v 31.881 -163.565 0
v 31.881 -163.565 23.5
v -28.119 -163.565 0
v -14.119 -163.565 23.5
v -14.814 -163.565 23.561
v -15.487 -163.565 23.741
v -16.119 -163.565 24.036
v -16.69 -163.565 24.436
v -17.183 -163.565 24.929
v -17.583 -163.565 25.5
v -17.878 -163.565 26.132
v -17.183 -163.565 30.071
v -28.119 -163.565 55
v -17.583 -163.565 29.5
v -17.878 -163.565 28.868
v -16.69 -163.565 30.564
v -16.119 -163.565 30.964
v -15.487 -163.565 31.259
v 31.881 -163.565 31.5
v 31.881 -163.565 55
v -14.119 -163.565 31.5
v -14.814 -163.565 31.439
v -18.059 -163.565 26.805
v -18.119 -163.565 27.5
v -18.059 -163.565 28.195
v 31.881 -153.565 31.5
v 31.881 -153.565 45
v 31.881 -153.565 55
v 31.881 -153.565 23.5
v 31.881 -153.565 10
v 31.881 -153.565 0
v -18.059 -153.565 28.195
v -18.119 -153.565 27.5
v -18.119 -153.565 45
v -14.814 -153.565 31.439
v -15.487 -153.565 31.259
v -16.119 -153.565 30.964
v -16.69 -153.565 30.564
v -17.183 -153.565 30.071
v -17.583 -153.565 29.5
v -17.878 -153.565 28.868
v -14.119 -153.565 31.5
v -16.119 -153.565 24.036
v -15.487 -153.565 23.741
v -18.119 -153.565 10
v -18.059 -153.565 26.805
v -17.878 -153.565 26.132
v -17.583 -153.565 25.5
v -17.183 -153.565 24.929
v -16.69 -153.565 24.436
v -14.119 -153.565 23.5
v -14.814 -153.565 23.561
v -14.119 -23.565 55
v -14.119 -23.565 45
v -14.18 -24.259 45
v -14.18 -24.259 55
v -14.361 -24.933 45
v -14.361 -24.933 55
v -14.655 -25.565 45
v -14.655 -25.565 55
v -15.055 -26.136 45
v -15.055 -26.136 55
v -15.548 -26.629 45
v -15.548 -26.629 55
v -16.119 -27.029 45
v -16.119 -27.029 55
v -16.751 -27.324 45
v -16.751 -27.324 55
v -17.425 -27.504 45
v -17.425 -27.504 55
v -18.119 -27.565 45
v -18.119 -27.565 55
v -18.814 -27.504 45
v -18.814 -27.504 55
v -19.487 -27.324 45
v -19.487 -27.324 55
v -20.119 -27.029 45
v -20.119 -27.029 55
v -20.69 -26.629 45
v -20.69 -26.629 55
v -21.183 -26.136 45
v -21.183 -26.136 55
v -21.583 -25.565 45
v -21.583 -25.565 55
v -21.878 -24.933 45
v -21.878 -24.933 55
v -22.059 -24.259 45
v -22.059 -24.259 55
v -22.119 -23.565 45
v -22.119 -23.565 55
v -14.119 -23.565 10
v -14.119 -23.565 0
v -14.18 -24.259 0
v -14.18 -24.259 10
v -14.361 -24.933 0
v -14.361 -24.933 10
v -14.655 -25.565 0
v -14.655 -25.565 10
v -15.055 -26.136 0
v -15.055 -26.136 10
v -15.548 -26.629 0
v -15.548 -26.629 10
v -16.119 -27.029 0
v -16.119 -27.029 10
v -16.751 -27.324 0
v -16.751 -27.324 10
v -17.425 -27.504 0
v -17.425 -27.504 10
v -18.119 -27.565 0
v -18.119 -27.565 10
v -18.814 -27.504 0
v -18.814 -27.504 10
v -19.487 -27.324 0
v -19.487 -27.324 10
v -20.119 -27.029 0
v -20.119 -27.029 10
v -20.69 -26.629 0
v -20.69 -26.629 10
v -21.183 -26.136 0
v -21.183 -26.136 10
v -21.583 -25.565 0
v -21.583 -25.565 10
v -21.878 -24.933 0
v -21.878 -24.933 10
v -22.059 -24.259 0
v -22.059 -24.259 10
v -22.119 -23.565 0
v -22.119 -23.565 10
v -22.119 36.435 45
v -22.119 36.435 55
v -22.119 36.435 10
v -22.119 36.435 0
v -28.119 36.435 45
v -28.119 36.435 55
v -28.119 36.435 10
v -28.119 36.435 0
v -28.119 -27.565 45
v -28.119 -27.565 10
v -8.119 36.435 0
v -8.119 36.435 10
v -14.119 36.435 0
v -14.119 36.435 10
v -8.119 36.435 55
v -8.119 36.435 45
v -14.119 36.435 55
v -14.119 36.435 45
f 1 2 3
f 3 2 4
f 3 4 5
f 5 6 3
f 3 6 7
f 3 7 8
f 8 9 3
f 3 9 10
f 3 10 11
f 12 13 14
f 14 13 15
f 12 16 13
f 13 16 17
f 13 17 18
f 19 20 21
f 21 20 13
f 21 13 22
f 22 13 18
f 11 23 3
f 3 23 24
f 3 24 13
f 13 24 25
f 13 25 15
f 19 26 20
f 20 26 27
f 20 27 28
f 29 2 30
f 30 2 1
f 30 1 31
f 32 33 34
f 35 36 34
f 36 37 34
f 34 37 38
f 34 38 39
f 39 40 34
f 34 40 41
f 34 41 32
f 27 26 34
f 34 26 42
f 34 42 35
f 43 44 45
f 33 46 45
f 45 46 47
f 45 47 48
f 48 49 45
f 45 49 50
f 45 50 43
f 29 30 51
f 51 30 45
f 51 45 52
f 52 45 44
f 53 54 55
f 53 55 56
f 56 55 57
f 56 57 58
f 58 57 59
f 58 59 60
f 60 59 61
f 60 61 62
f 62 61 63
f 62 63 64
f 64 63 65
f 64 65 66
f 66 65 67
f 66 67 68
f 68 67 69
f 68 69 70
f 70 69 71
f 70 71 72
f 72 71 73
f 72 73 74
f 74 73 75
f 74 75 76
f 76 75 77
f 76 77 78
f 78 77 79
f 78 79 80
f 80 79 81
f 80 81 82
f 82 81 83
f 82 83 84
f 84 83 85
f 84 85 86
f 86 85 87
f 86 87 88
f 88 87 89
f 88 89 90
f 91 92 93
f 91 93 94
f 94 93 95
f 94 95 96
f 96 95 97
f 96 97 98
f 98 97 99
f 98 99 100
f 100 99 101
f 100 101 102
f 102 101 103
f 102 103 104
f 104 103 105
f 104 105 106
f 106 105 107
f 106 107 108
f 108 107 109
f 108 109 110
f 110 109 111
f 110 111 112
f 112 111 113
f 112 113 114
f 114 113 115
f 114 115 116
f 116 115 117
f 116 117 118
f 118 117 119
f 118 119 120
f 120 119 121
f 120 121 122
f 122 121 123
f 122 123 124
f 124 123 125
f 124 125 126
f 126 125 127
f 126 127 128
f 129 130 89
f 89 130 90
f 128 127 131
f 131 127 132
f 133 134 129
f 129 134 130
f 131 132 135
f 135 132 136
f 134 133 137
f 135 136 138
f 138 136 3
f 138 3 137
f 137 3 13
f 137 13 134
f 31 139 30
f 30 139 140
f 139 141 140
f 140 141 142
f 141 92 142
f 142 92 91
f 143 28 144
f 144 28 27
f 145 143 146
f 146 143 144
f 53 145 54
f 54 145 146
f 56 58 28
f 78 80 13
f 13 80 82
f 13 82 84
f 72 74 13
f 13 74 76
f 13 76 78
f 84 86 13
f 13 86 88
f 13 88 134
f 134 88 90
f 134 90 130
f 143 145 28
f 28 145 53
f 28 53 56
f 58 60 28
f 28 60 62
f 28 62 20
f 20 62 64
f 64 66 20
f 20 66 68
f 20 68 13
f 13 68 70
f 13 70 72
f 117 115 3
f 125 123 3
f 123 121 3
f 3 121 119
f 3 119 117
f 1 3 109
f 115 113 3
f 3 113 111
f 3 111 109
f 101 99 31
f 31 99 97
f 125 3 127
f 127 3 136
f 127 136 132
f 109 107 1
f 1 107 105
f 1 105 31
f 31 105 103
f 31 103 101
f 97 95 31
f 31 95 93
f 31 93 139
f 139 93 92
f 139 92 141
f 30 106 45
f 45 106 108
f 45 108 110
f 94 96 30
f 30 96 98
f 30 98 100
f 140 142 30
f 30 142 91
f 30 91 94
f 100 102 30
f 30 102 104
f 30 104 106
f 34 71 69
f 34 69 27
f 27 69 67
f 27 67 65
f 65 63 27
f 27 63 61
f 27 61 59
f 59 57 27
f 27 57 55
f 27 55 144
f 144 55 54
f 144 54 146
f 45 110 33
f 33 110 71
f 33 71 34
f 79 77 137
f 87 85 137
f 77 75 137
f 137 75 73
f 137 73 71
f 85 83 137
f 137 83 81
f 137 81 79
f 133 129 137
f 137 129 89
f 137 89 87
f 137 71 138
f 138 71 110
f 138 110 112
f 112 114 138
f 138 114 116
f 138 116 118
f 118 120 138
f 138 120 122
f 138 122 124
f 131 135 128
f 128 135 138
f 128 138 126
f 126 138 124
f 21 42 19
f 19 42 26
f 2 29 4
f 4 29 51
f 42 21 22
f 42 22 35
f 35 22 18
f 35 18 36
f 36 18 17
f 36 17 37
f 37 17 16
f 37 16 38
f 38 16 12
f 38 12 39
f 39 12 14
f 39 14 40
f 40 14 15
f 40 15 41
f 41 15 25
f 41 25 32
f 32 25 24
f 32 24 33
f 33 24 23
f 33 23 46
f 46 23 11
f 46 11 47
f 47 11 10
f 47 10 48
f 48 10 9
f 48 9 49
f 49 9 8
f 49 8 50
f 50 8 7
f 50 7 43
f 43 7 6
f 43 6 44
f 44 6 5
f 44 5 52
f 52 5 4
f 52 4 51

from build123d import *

# Parameters (mm, degrees)
SALIENTE_EXTRUIR1_DEPTH = 55
CORTAR_EXTRUIR1_DEPTH   = 50
CROQUIS4_W              = 35
CROQUIS4_H              = 6.173291601
CORTAR_EXTRUIR2_DEPTH   = 30.5
CORTAR_EXTRUIR3_DEPTH   = 30.5


with BuildPart() as part:
    # Croquis1 → Saliente-Extruir1 (new body)
    with BuildSketch(Plane.XY):
        with BuildLine():
            Line((-28.119282629, 36.435094891), (-28.119282629, -163.564905109))
            Line((-28.119282629, -163.564905109), (31.880717371, -163.564905109))
            Line((31.880717371, -163.564905109), (31.880717371, -153.564905109))
            Line((31.880717371, -153.564905109), (-8.119282629, 36.435094891))
            Line((-8.119282629, 36.435094891), (-14.119282629, 36.435094891))
            Line((-14.119282629, 36.435094891), (-14.119282629, -23.564905109))
            ThreePointArc((-14.119282629, -23.564905109), (-18.119282629, -27.564905109), (-22.119282629, -23.564905109))
            Line((-22.119282629, -23.564905109), (-22.119282629, 36.435094891))
            Line((-22.119282629, 36.435094891), (-28.119282629, 36.435094891))
        make_face()
    extrude(amount=SALIENTE_EXTRUIR1_DEPTH)

    # Croquis2 → Cortar-Extruir1 (cut)
    with BuildSketch(Plane(origin=(31.880717371, 0, 0), x_dir=(0, 0, -1), z_dir=(1, 0, 0))):
        Polygon((-45, -142.180293539), (-45, -153.564905109), (-27.5, -153.564905109), (-10, -153.564905109), (-10, -142.180293539), (-10, 41.509822178), (-45, 41.509822178), align=None)
    extrude(amount=-CORTAR_EXTRUIR1_DEPTH, mode=Mode.SUBTRACT)

    # Croquis4 → Cortar-Extruir2 (cut)
    with BuildSketch(Plane.ZY.offset(28.119282629)):
        with Locations((27.5, 39.521740691)):
            Rectangle(CROQUIS4_W, CROQUIS4_H)
        Polygon((10, -27.564905109), (27.5, -27.564905109), (45, -27.564905109), (45, 36.435094891), (10, 36.435094891), align=None)
    extrude(amount=-CORTAR_EXTRUIR2_DEPTH, mode=Mode.SUBTRACT)

    # Croquis5 → Cortar-Extruir3 (cut)
    with BuildSketch(Plane(origin=(0, -163.564905109, 0), x_dir=(-1, 0, 0), z_dir=(0, -1, 0))):
        with BuildLine():
            Line((-31.880717371, -27.5), (-31.880717371, -31.5))
            Line((-31.880717371, -31.5), (14.119282629, -31.5))
            ThreePointArc((14.119282629, -31.5), (18.119282629, -27.5), (14.119282629, -23.5))
            Line((14.119282629, -23.5), (-31.880717371, -23.5))
            Line((-31.880717371, -23.5), (-31.880717371, -27.5))
        make_face()
    extrude(amount=-CORTAR_EXTRUIR3_DEPTH, mode=Mode.SUBTRACT)


solid = part.part
